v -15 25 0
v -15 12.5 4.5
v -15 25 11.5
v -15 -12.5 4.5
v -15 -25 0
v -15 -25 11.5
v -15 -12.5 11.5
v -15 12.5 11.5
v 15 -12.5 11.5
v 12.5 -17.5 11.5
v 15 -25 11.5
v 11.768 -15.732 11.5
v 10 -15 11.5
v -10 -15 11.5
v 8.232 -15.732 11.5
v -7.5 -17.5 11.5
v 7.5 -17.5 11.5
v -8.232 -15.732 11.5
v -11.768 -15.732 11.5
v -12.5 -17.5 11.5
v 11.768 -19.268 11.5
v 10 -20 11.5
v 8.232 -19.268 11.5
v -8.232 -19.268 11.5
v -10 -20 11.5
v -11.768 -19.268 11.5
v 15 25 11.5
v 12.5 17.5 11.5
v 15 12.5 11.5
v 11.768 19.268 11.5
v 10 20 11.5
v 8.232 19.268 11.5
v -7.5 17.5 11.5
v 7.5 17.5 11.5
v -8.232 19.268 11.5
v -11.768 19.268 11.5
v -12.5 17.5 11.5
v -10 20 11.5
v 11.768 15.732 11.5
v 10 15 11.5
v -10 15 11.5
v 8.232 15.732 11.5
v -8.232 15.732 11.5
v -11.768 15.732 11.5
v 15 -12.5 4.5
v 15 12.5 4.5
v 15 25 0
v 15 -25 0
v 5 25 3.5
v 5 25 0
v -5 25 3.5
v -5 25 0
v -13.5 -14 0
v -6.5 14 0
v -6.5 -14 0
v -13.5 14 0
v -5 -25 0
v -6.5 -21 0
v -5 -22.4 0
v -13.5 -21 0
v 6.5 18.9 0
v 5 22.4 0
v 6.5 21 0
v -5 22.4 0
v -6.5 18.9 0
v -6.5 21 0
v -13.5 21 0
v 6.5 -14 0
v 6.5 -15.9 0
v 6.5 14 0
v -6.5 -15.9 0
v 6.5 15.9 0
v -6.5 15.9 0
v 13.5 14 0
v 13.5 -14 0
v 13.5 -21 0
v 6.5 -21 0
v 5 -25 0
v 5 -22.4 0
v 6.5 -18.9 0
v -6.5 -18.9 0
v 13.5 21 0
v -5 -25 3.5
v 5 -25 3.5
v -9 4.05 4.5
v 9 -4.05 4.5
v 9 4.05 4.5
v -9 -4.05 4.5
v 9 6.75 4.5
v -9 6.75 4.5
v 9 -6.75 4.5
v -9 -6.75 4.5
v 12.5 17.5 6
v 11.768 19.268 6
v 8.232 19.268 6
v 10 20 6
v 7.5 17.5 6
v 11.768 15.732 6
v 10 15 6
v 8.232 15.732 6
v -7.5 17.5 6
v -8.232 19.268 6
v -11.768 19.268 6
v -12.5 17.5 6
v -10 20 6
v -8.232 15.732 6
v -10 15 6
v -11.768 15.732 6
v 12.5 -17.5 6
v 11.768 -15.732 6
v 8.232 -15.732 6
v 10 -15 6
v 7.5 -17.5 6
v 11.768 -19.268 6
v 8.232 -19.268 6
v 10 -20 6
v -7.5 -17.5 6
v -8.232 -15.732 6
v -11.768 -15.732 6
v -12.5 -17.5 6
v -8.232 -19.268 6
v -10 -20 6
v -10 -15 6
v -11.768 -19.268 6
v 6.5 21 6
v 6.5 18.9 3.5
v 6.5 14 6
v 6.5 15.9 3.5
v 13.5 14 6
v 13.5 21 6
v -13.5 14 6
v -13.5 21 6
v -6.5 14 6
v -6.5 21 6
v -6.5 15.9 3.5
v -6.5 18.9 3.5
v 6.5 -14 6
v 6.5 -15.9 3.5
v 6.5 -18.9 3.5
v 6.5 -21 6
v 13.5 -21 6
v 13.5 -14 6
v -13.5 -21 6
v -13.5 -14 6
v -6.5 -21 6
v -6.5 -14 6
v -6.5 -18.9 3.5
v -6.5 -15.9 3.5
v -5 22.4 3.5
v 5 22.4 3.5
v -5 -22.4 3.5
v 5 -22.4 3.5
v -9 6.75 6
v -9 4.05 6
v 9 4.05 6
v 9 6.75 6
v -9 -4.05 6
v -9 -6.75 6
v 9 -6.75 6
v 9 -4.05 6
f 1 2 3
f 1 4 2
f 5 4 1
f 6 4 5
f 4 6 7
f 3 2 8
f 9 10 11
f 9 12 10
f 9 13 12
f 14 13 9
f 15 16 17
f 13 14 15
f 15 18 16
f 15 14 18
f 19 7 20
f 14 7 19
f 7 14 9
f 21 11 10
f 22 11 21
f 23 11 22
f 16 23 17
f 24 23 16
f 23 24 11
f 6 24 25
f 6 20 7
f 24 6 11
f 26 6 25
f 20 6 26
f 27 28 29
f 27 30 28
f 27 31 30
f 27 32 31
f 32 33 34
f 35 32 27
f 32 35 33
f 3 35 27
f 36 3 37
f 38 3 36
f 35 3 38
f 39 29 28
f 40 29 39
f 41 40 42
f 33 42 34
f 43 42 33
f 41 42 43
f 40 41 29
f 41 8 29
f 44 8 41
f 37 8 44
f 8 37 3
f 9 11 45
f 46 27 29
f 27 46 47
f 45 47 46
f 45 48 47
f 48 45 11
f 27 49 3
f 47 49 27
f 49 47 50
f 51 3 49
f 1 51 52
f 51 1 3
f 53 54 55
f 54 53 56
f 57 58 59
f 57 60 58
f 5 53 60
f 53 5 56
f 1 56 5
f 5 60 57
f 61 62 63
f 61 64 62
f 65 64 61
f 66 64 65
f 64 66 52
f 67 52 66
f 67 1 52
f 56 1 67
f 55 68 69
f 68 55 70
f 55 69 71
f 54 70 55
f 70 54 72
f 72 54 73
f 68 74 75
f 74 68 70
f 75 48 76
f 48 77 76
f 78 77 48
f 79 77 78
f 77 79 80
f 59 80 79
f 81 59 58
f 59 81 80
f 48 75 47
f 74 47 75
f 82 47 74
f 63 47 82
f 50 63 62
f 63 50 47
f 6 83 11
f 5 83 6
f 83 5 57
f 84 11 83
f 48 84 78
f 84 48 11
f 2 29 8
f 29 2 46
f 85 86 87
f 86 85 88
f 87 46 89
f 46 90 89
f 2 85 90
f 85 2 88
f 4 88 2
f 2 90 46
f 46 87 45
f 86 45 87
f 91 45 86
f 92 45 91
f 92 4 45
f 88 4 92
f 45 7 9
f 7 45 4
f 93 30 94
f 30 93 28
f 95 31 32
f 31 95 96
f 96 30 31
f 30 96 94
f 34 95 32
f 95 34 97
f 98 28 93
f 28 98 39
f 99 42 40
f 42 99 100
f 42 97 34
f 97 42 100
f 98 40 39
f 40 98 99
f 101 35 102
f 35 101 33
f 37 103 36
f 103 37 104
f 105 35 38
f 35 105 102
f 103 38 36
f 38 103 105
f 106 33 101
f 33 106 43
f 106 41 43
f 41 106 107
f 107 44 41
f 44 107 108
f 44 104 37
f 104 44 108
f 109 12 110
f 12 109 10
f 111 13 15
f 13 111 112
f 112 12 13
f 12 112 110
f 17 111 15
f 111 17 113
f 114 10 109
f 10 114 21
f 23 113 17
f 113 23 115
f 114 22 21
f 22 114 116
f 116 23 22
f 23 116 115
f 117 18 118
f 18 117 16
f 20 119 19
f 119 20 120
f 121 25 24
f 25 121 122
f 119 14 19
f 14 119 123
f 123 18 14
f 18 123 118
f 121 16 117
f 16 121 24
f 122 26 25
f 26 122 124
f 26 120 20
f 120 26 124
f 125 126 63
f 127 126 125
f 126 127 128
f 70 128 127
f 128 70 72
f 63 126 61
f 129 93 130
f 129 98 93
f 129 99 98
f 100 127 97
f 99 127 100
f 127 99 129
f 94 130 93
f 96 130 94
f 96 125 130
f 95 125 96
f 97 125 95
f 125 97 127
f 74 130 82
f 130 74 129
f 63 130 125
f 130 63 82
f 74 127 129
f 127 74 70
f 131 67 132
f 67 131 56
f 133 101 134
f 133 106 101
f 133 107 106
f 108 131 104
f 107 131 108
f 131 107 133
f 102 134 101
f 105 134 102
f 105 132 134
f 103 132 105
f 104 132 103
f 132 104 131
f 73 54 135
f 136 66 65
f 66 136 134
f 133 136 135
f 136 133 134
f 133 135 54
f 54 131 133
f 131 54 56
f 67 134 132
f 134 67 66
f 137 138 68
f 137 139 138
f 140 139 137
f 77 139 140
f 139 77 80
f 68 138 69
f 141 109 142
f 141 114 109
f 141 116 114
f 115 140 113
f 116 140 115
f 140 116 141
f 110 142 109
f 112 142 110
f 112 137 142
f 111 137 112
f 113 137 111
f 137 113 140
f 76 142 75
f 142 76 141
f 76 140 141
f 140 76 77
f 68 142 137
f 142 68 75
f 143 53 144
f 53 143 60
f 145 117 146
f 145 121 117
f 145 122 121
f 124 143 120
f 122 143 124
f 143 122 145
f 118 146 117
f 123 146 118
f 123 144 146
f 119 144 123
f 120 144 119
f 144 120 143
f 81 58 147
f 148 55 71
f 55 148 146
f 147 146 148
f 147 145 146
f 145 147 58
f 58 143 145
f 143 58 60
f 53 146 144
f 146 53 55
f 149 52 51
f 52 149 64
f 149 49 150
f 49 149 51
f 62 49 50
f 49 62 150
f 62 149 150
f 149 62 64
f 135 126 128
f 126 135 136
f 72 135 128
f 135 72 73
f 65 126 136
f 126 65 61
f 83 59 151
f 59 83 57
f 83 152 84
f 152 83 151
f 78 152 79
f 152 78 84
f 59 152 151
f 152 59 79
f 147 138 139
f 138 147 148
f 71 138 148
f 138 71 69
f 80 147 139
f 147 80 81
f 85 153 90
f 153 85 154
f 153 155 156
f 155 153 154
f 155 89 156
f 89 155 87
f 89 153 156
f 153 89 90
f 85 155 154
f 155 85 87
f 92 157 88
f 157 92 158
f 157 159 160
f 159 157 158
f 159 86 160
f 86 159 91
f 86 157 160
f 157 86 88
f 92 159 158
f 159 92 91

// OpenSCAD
//block shape
x=30;
y=50;
z=11.5;

//track channel
f=x+10;
g=25;
h=9.5;

// spacing of screw holes
cx=20;
cy=35;

difference()
{
    translate([0,0,z]/2) cube ([x,y,z],center=true);
    translate([0,0,z]/2 + [0,0,z - 8]) cube([f,g,h],center=true);


  translate([cx,cy,0]/2) cylinder(d=5, h=50,  center=true);
  translate([-cx,cy,0]/2) cylinder(d=5, h=50,  center=true);
    translate([cx,-cy,0]/2) cylinder(d=5, h=50,  center=true);
    translate([-cx,-cy,0]/2) cylinder(d=5, h=50,  center=true);
  translate([cx,cy,0]/2) cube([7,7,12],  center=true);
  translate([-cx,cy,0]/2) cube([7,7,12], center=true);
    translate([cx,-cy,0]/2) cube([7,7,12],  center=true);
    translate([-cx,-cy,0]/2) cube([7,7,12],  center=true);    
    
   translate([0,(6.8+41)/2,11.5-10]) cube([10,3,4],center=true);
    translate([0,(6.8+28)/2,11.5-10]) cube([18,3,4],center=true);
       translate([0,-(6.8+41)/2,11.5-10]) cube([10,3,4],center=true);
    translate([0,-(6.8+28)/2,11.5-10]) cube([18,3,4],center=true);
}

translate([0,(6.8+4)/2,z-8]) cube([18,2.7,5],center=true);
translate([0,-(6.8+4)/2,z-8]) cube([18,2.7,5],center=true);
